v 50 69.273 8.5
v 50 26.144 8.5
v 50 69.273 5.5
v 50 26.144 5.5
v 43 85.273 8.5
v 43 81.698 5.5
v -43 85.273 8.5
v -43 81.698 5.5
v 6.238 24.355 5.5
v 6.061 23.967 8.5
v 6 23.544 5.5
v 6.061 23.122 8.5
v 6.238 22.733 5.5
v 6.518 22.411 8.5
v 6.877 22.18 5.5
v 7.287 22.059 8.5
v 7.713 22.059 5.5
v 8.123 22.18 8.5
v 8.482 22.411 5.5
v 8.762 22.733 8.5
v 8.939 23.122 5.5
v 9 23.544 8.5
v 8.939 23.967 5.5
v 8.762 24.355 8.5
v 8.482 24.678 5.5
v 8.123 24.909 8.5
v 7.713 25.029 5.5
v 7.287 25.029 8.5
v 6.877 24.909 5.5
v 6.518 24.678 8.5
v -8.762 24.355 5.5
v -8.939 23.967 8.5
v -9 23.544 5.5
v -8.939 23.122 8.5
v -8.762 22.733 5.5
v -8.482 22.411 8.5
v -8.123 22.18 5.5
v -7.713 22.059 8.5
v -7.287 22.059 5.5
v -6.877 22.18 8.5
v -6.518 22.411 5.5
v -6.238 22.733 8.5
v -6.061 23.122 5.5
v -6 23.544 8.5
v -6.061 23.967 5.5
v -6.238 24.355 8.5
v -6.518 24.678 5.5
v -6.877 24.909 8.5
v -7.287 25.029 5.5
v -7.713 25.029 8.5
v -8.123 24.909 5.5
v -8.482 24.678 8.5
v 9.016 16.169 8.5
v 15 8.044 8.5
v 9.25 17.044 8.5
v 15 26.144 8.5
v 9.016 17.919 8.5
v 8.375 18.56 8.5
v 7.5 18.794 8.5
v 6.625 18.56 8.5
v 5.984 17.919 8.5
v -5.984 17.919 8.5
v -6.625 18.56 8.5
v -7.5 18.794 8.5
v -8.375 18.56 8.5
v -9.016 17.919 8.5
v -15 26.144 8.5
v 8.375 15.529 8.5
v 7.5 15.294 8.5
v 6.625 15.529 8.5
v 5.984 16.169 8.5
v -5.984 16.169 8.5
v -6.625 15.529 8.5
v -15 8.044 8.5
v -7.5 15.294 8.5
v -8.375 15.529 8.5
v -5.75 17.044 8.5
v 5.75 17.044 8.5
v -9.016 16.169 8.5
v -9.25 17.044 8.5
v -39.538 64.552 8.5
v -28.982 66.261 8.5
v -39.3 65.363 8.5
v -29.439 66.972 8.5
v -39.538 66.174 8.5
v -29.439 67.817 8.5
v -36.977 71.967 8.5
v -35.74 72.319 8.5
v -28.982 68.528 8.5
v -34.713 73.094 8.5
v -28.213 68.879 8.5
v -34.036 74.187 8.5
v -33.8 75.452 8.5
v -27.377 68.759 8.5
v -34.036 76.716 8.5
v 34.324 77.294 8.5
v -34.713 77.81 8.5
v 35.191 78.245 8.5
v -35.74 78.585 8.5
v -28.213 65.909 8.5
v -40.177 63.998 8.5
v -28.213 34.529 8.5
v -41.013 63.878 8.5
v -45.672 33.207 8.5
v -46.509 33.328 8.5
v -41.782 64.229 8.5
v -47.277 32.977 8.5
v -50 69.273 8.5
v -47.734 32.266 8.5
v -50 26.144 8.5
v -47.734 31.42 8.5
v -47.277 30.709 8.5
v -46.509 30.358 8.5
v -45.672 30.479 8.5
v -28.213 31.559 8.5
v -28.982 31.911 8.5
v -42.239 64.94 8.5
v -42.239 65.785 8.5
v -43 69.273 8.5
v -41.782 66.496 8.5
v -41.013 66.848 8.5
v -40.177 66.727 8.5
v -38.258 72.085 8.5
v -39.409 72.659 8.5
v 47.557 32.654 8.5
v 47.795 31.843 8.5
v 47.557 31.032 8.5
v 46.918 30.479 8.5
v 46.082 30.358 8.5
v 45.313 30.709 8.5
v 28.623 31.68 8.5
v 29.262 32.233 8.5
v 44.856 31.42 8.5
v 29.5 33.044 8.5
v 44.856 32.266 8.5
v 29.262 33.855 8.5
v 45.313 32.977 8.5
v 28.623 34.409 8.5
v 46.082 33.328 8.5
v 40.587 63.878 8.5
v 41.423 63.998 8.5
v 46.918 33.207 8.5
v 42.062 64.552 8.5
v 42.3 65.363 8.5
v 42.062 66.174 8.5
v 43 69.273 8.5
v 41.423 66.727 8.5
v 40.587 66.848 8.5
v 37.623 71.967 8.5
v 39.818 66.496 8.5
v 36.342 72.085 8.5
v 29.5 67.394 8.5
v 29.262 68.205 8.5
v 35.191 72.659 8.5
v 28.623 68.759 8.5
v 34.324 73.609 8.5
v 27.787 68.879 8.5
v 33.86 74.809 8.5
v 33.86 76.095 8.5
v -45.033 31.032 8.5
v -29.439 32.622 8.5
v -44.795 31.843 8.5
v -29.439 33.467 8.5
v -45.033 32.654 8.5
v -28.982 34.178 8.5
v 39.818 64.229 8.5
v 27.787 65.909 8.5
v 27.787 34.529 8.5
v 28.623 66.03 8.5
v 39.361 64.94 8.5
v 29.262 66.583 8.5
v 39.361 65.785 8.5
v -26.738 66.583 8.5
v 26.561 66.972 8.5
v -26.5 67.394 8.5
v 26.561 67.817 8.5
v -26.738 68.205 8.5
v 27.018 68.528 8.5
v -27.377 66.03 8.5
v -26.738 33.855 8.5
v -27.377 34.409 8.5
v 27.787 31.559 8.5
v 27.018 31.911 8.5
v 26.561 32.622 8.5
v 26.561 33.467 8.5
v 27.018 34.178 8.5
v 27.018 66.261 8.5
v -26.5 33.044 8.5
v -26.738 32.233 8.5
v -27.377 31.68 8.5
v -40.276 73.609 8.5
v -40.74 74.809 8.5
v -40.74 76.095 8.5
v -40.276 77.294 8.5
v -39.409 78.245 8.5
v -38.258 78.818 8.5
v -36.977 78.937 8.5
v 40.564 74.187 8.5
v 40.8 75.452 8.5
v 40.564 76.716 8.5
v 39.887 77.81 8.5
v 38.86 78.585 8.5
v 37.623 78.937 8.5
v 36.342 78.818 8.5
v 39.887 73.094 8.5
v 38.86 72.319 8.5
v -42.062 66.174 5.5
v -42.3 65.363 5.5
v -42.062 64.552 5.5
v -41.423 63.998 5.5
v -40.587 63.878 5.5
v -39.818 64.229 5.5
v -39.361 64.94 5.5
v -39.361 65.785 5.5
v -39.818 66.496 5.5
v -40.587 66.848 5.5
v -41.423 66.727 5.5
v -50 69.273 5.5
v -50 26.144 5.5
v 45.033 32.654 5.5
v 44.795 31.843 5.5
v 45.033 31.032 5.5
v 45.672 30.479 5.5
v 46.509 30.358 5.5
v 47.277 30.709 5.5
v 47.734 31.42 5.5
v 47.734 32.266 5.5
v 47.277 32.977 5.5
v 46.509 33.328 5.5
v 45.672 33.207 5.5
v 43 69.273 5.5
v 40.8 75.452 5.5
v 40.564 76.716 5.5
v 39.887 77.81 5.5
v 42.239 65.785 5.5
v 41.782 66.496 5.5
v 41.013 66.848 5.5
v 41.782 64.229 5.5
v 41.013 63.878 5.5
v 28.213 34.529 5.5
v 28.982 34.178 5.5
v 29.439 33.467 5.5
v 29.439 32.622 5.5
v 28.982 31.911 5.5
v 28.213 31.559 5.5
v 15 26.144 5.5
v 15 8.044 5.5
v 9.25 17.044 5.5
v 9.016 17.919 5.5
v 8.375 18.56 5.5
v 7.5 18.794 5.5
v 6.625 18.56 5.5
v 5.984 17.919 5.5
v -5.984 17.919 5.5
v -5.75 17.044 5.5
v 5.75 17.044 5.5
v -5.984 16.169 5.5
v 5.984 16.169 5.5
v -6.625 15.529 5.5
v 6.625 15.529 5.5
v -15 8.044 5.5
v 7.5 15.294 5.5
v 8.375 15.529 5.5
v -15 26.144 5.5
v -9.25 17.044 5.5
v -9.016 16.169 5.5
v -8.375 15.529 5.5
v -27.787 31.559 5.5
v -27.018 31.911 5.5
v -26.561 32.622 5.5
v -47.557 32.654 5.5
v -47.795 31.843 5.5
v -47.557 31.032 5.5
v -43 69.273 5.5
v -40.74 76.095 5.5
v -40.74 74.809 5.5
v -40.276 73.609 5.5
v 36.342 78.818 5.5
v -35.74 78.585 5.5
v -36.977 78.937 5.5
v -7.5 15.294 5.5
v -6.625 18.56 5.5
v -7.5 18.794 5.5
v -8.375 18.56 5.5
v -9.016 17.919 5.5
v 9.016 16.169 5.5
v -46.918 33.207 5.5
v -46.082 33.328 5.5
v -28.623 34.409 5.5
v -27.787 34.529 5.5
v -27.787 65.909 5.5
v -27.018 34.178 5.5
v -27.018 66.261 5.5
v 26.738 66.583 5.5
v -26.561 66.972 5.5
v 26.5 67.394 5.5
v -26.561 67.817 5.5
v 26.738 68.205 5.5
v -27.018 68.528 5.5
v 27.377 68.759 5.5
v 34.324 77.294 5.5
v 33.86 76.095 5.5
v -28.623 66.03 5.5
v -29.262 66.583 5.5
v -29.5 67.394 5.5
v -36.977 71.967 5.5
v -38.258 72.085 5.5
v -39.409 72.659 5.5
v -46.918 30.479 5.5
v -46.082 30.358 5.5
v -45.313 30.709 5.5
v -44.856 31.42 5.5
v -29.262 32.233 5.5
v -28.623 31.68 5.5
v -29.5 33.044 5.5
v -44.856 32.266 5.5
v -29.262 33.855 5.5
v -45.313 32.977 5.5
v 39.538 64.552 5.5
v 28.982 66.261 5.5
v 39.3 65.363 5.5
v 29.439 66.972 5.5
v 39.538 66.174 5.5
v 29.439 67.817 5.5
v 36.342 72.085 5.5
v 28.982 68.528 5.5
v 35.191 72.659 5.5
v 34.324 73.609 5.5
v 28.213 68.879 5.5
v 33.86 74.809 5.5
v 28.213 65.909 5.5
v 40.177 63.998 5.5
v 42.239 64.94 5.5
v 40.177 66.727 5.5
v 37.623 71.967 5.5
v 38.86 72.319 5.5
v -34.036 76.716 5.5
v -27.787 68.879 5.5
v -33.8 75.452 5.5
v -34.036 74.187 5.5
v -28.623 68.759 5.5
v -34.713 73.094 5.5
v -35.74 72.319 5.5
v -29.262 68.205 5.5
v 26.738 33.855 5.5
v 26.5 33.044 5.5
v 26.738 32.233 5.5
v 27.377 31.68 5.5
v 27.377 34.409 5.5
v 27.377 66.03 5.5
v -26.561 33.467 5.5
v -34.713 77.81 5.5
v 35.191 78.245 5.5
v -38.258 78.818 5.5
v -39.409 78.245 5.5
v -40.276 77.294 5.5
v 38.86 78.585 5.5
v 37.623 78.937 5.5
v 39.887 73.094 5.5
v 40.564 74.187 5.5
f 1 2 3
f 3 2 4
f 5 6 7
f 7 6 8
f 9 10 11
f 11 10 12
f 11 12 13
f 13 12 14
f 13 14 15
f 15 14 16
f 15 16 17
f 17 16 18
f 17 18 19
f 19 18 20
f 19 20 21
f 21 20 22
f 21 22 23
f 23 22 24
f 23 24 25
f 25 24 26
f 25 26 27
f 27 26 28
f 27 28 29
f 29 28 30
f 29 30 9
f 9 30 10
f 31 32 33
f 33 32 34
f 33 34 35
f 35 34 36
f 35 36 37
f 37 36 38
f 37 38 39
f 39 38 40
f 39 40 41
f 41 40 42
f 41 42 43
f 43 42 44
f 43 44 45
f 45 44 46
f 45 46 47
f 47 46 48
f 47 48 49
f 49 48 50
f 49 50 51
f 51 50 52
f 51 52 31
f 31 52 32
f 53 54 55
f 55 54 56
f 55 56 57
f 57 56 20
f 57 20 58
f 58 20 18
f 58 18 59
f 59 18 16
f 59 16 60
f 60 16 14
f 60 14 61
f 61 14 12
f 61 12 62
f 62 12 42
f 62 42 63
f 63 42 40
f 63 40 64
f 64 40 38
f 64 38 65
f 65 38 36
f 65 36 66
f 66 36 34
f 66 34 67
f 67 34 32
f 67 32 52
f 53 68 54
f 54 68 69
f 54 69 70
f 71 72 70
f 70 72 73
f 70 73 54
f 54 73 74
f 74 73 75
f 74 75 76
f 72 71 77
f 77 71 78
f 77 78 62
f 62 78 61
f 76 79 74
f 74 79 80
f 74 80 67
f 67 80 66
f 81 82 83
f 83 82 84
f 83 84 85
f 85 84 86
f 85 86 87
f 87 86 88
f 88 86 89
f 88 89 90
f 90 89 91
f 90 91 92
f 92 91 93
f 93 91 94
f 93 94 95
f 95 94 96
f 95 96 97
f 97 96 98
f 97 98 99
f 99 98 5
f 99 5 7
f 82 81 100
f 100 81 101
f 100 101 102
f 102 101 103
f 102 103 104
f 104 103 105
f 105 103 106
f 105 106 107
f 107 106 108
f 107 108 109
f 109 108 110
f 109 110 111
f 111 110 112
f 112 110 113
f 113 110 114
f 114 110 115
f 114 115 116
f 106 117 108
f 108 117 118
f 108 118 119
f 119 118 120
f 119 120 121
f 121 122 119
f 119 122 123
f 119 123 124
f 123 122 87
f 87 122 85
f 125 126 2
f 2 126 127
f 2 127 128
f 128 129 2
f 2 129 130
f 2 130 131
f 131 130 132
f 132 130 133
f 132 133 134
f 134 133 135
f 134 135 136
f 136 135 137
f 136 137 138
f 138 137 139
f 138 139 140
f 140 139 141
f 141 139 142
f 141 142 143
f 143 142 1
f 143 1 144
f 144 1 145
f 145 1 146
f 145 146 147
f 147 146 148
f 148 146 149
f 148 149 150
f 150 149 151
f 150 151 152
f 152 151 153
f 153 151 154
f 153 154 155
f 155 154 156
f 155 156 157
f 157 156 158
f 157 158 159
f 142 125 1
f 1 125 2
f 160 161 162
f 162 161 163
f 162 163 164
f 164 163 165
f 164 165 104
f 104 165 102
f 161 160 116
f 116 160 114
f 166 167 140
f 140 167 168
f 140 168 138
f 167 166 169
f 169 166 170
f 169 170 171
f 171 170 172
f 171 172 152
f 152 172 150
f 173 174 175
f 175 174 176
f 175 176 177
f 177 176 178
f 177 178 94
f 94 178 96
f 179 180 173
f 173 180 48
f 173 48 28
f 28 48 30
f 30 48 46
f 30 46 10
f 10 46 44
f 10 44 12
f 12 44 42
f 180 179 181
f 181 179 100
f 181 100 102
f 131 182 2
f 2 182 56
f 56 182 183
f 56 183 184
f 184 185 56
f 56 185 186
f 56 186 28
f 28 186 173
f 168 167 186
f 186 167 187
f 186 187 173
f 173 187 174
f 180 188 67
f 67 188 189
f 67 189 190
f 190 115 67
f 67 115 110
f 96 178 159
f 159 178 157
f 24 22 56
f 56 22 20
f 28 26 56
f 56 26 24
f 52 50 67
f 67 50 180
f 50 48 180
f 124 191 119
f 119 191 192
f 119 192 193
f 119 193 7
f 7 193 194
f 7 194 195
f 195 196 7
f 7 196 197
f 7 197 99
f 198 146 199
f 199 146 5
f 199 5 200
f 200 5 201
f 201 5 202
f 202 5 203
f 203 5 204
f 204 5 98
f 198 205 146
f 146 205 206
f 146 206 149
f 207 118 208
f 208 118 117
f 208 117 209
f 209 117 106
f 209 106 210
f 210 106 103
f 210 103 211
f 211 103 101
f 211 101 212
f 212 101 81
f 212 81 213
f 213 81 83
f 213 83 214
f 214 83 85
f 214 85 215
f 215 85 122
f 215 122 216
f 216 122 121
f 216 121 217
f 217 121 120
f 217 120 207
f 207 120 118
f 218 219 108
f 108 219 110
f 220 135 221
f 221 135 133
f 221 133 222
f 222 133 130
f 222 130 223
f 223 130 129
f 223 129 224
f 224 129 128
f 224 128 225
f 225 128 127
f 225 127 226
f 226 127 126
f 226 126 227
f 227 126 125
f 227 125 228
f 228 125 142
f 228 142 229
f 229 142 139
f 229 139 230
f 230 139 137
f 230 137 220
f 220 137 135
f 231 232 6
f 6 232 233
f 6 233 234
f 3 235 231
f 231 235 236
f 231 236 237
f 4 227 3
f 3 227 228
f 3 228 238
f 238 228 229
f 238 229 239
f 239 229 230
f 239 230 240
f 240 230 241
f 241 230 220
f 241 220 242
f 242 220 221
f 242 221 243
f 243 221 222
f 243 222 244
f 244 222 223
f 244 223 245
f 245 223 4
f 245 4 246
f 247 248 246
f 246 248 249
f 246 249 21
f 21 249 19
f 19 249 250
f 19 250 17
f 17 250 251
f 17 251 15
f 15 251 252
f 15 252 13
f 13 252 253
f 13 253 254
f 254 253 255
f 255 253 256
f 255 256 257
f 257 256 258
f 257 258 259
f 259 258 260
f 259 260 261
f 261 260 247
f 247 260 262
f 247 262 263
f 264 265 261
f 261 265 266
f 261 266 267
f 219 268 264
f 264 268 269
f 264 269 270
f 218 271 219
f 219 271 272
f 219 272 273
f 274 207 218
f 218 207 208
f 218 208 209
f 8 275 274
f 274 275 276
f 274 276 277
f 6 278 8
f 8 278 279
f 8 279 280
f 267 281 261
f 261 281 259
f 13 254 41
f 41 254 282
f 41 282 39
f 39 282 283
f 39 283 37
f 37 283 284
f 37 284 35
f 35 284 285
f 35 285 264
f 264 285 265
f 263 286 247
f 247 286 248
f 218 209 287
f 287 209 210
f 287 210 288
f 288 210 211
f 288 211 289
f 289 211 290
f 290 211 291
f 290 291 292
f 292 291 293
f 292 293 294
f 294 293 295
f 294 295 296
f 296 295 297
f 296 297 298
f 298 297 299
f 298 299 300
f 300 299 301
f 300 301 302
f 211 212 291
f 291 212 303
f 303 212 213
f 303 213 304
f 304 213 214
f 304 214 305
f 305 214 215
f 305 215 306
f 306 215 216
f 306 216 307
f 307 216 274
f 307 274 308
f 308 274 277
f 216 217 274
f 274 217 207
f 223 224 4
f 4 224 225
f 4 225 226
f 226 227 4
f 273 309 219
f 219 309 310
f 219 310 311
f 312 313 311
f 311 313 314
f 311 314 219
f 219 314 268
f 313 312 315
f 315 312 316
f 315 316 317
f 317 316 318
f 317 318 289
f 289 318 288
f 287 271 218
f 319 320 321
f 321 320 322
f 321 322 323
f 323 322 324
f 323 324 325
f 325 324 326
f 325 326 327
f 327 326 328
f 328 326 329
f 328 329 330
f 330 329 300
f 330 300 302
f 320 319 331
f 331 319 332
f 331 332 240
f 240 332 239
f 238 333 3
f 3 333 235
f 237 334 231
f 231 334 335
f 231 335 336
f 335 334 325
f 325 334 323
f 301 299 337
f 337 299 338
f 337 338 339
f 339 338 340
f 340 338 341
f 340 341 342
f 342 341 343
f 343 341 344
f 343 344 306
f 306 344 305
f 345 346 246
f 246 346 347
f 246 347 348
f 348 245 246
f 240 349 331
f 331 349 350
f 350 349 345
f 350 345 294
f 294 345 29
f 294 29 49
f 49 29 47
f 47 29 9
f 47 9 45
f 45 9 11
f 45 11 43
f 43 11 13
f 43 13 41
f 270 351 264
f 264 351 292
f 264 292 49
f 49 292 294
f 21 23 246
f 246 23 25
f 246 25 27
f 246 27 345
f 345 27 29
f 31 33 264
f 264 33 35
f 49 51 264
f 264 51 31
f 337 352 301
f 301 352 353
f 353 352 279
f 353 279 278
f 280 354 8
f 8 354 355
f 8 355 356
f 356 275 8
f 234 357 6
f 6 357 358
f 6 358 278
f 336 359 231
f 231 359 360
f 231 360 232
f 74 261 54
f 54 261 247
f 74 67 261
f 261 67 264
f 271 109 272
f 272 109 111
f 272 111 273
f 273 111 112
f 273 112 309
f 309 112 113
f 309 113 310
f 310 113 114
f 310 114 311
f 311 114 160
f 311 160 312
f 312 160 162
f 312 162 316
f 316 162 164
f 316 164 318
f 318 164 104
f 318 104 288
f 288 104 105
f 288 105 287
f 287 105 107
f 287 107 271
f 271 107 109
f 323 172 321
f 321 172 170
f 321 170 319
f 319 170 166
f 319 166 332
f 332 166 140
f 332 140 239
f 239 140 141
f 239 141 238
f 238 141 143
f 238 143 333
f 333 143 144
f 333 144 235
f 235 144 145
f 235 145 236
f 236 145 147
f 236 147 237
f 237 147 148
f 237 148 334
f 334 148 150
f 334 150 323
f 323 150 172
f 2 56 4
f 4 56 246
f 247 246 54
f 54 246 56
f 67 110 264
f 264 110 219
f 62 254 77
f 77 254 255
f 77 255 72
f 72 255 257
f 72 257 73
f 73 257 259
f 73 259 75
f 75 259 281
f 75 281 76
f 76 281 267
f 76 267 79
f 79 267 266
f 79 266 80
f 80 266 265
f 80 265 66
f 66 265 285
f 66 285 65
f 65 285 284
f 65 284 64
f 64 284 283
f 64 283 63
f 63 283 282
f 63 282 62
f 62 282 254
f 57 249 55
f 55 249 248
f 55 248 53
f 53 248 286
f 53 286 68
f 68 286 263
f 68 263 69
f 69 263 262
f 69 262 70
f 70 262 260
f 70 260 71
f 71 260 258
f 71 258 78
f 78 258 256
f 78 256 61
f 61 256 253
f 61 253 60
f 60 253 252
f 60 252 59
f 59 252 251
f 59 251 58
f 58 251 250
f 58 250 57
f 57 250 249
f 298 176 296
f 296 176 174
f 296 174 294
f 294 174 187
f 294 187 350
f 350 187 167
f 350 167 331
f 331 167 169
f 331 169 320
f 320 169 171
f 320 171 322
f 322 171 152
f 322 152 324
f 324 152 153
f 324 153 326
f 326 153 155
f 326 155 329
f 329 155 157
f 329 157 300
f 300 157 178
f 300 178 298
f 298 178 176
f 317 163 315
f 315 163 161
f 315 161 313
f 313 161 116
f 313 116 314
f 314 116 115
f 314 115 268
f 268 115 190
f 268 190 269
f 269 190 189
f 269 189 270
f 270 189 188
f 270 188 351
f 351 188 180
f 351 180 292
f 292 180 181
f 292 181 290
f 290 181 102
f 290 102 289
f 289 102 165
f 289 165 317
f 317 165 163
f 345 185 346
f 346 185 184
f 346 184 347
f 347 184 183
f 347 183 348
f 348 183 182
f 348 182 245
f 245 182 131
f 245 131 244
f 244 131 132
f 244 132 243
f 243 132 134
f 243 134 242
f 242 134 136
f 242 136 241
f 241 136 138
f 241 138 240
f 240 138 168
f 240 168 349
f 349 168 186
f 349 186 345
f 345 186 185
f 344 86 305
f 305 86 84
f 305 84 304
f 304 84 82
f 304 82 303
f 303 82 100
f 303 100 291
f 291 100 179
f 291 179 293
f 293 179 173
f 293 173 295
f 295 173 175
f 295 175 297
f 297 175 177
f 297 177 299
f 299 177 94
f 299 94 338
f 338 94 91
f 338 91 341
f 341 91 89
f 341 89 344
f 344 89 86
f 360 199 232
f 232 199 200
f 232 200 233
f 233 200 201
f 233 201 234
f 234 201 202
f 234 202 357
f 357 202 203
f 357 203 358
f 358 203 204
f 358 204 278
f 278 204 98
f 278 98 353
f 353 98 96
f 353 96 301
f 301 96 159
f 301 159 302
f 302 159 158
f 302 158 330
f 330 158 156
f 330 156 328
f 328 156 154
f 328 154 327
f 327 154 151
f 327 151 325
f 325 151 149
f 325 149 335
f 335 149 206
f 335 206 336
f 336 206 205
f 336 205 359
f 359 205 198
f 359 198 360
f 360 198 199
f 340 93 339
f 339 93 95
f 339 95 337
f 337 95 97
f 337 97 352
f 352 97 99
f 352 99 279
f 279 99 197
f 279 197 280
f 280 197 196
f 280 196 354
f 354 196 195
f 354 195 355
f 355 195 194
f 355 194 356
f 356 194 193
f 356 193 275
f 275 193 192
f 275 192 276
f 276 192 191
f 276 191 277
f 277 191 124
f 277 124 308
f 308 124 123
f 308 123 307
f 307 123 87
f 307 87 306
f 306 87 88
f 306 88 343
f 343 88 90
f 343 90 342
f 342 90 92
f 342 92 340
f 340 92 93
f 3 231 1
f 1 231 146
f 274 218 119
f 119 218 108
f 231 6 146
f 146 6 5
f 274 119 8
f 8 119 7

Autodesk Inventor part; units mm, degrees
ref_plane "YZ Plane" through (0, 0, 0) normal (1, 0, 0) x (0, 1, 0)
ref_plane "XZ Plane" through (0, 0, 0) normal (0, 1, 0) x (-1, 0, 0)
sketch "Sketch1" plane through (0, 0, 0) normal (0, 0, 1) x (1, 0, 0)
  line L0 (15, -2.1558) -> (15, 4.1558) projected
  line L1 (15, 4.1558) -> (-15, 4.1558) projected
  line L2 (-15, 4.1558) -> (-15, -2.1558) projected
  arc A0 (-15, -2.1558) -> (-13, -4.1558) centre (-13, -2.1558) ccw projected
  line L3 (-13, -4.1558) -> (13, -4.1558) projected
  arc A1 (13, -4.1558) -> (15, -2.1558) centre (13, -2.1558) ccw projected
  circle A2 centre (7.5, -0.9558) radius 1.75 projected
  circle A3 centre (-7.5, -0.9558) radius 1.75 projected
  circle A4 centre (7.5, 17.0442) radius 1.75 projected
  line L4 (4.1641, 20.2442) -> (4.1641, 11.9327) projected
  line L5 (4.1641, 11.9327) -> (15, 11.9327) projected
  line L6 (15, 11.9327) -> (15, 18.2442) projected
  arc A5 (15, 18.2442) -> (13, 20.2442) centre (13, 18.2442) ccw projected
  line L7 (13, 20.2442) -> (4.1641, 20.2442) projected
  line L8 (-4.1641, 11.9327) -> (-4.1641, 20.2442) projected
  line L9 (-4.1641, 20.2442) -> (-13, 20.2442) projected
  arc A6 (-13, 20.2442) -> (-15, 18.2442) centre (-13, 18.2442) ccw projected
  line L10 (-15, 18.2442) -> (-15, 11.9327) projected
  line L11 (-15, 11.9327) -> (-4.1641, 11.9327) projected
  circle A7 centre (-7.5, 17.0442) radius 1.75 projected
  line L12 (48, -8.0558) -> (17.2, -8.0558)
  line L13 (-48, -8.0558) -> (-17.2, -8.0558)
  line L14 (48, -8.0558) -> (50, -8.0558)
  line L15 (50, -8.0558) -> (50, 42.8217)
  line L16 (-48, -8.0558) -> (-50, -8.0558)
  line L17 (-50, -8.0558) -> (-50, 42.8217)
  line L18 (50, -8.0558) -> (-50, -8.0558)
  line L19 (-50, -8.0558) -> (-50, 91.9442)
  line L20 (-50, 91.9442) -> (50, 91.9442)
  line L21 (50, 91.9442) -> (50, -8.0558)
  line L22 (48, 24.1442) -> (17.2, 24.1442)
  line L23 (-48, 24.1442) -> (-17.2, 24.1442)
  line L24 (48, 24.1442) -> (17.2, 24.1442)
  line L25 (17.2, 24.1442) -> (17.2, 26.1442)
  line L26 (17.2, 26.1442) -> (48, 26.1442)
  line L27 (48, 26.1442) -> (48, 24.1442)
  line L28 (-48, 24.1442) -> (-17.2, 24.1442)
  line L29 (-17.2, 24.1442) -> (-17.2, 26.1442)
  line L30 (-17.2, 26.1442) -> (-48, 26.1442)
  line L31 (-48, 26.1442) -> (-48, 24.1442)
  line L32 (-15, -4.1558) -> (15, -4.1558)
  line L33 (15, -4.1558) -> (15, 49.5694)
  line L34 (15, 49.5694) -> (-15, 49.5694)
  line L35 (-15, 49.5694) -> (-15, -4.1558)
  line L36 (-50, 91.9442) -> (50, 91.9442)
  line L37 (50, 91.9442) -> (50, 26.1442)
  line L38 (50, 26.1442) -> (-50, 26.1442)
  line L39 (-50, 26.1442) -> (-50, 91.9442)
  point P0 (0, 0)
  point P1 (15, 26.1442)
  point P2 (-15, 26.1442)
  dimension "d2" = 100
  dimension "d3" = 2
  dimension "d4" = 2
extrude "Extrusion1" add sketch "Sketch1" along normal blind 2 contours A1 L3 A0 L2 L1 L0 | L33 L32 A1 | L1 L35 L11 L8 L9 A6 L38 L33 A5 L7 L4 L5 | L5 L4 L7 A5 L6 | L32 L35 A0 | L10 A6 L9 L8 L11 | L38 L35 L34 L33 | L33 L34 L35 L38 L30 L17 L19 L20 L21 L15 L26
sketch "Sketch2" plane through (0, 0, 2) normal (0, 0, 1) x (1, 0, 0)
  line L0 (15, -4.1558) -> (15, 26.1442) projected
  line L1 (15, 26.1442) -> (50, 26.1442) projected
  line L2 (50, 26.1442) -> (50, 91.9442) projected
  line L3 (50, 91.9442) -> (-50, 91.9442) projected
  line L4 (-50, 91.9442) -> (-50, 26.1442) projected
  line L5 (-50, 26.1442) -> (-15, 26.1442) projected
  line L6 (-15, 26.1442) -> (-15, -4.1558) projected
  line L7 (-15, -4.1558) -> (15, -4.1558) projected
  circle A0 centre (7.5, -0.9558) radius 1.75 projected
  circle A1 centre (-7.5, -0.9558) radius 1.75 projected
  circle A2 centre (7.5, 17.0442) radius 1.75 projected
  circle A3 centre (-7.5, 17.0442) radius 1.75 projected
  point P0 (0, 0)
extrude "Extrusion2" add sketch "Sketch2" along normal blind 7
extrude "Extrusion3" cut sketch "Sketch2" against normal blind 7
extrude "Extrusion4" cut sketch "Sketch2" along normal blind 4
sketch "Sketch3" plane through (0, 0, 6) normal (0, 0, -1) x (-1, 0, 0)
  line L0 (-15, 26.1442) -> (-50, 26.1442) projected
  line L1 (-15, -4.1558) -> (-15, 26.1442) projected
  line L2 (15, -4.1558) -> (-15, -4.1558) projected
  line L3 (15, 26.1442) -> (15, -4.1558) projected
  line L4 (50, 26.1442) -> (15, 26.1442) projected
  line L5 (50, 91.9442) -> (50, 26.1442) projected
  line L6 (-50, 91.9442) -> (50, 91.9442) projected
  line L7 (-50, 26.1442) -> (-50, 91.9442) projected
  circle A0 centre (-7.5, -0.9558) radius 1.75 projected
  circle A1 centre (7.5, -0.9558) radius 1.75 projected
  circle A2 centre (-7.5, 17.0442) radius 1.75 projected
  circle A3 centre (7.5, 17.0442) radius 1.75 projected
  point P0 (0, 0)
extrude "Extrusion5" add sketch "Sketch3" along normal blind 0.5
sketch "Sketch4" plane through (0, 0, 9) normal (0, 0, 1) x (1, 0, 0)
  line L0 (15, 26.1442) -> (50, 26.1442) projected
  line L1 (50, 26.1442) -> (50, 91.9442) projected
  line L2 (50, 91.9442) -> (-50, 91.9442) projected
  line L3 (-50, 91.9442) -> (-50, 26.1442) projected
  line L4 (-50, 26.1442) -> (-15, 26.1442) projected
  line L5 (-15, 26.1442) -> (-15, -4.1558) projected
  line L6 (-15, -4.1558) -> (15, -4.1558) projected
  line L7 (15, -4.1558) -> (15, 26.1442) projected
  circle A0 centre (7.5, -0.9558) radius 1.75 projected
  circle A1 centre (-7.5, -0.9558) radius 1.75 projected
  circle A2 centre (7.5, 17.0442) radius 1.75 projected
  circle A3 centre (-7.5, 17.0442) radius 1.75 projected
  point P0 (0, 0)
extrude "Extrusion6" cut sketch "Sketch4" against normal blind 0.5
sketch "Sketch5" plane through (0, 0, 5.5) normal (0, 0, -1) x (-1, 0, 0)
  line L0 (-15, -4.1558) -> (15, -4.1558) projected
  line L1 (15, -4.1558) -> (15, 26.1442) projected
  line L2 (15, 26.1442) -> (50, 26.1442) projected
  line L3 (50, 26.1442) -> (50, 91.9442) projected
  line L4 (50, 91.9442) -> (-50, 91.9442) projected
  line L5 (-50, 91.9442) -> (-50, 26.1442) projected
  line L6 (-50, 26.1442) -> (-15, 26.1442) projected
  line L7 (-15, 26.1442) -> (-15, -4.1558) projected
  circle A0 centre (7.5, 17.0442) radius 1.75 projected
  circle A1 centre (-7.5, 17.0442) radius 1.75 projected
  circle A2 centre (7.5, -0.9558) radius 1.75 projected
  circle A3 centre (-7.5, -0.9558) radius 1.75 projected
  circle A4 centre (7.5, -0.9558) radius 1.75 projected
  circle A5 centre (7.5, 17.0442) radius 1.75 projected
  line L8 (7.5, -0.9558) -> (7.5, 17.0442)
  line L9 (7.5, 17.0442) -> (7.5, 35.0442)
  line L10 (7.5, 17.0442) -> (-7.5, 17.0442)
  line L11 (-7.5, 17.0442) -> (-7.5, 35.0442)
  line L12 (-7.5, 35.0442) -> (7.5, 35.0442)
  line L13 (7.5, 35.0442) -> (7.5, 17.0442)
  circle A6 centre (7.5, 35.0442) radius 1.5
  circle A7 centre (-7.5, 35.0442) radius 1.5
  point P0 (0, 0)
  dimension "d20" = 18
  dimension "d21" = 3
  dimension "d22" = 3
extrude "Extrusion7" cut sketch "Sketch5" against normal through all contours A6 L12 L9 | L9 L12 A6 | A7 L11 L12 | L12 L11 A7
sketch "Sketch6" plane through (15, -4.1558, 5.5) normal (1, 0, 0) x (0, 0, -1)
  line L0 (-3, 30.3) -> (-3, 0) projected
  line L1 (0, 0) -> (-3, 0) projected
  line L2 (0, 30.3) -> (0, 0) projected
  line L3 (0, 30.3) -> (-3, 30.3) projected
  circle A0 centre (11.4185, 12.2) radius 16.1 projected
  line L4 (11.4185, 12.2) -> (-2.2801, 12.2)
  line L5 (-2.2801, 12.2) -> (-8.0401, 12.2)
  circle A1 centre (11.4185, 12.2) radius 14
  point P0 (5.5, 4.1558)
  point P1 (0, 12.2)
  point P2 (-3, 12.2)
extrude "Extrusion8" cut sketch "Sketch6" against normal through all contours L5 A1 L2 A0 L0 | A0 L2 L1 L0 | L5 L4 L2 A1 picked at (-1.4712, 5.246) picked at (-0.4712, 7.6339)
sketch "Sketch7" plane through (-50, 26.1442, 5.5) normal (-1, 0, 0) x (0, 0, 1)
  line L0 (3, 0) -> (3, 65.8) projected
  line L1 (0, 65.8) -> (3, 65.8) projected
  line L2 (0, 0) -> (0, 65.8) projected
  line L3 (0, 0) -> (3, 0) projected
  circle A0 centre (-10.971, -17.5667) radius 16.1 projected
  line L4 (-10.971, -33.6667) -> (-10.971, 66.3333)
  line L5 (5.129, -17.5667) -> (5.129, 92.1533)
  line L6 (-10.971, 66.3333) -> (5.129, 66.3333)
  line L7 (5.129, 66.3333) -> (-7.5989, 53.6054)
  line L8 (-7.5989, 53.6054) -> (-5.4776, 51.4841)
  line L9 (-5.4776, 51.4841) -> (5.129, 62.0907)
  point P0 (-5.5, -26.1442)
  point P1 (0, 56.9617)
  point P2 (3, 59.9617)
  dimension "d27" = 18
  dimension "d28" = 45
  dimension "d29" = 3
extrude "Extrusion9" cut sketch "Sketch7" against normal through all contours L9 L2 L7 L0 | L7 L2 L1 L0
sketch "Sketch9" plane through (-50, 26.1442, 5.5) normal (-1, 0, 0) x (0, 0, 1)
  line L0 (3, 59.9617) -> (0, 56.9617) projected
  line L1 (0, 0) -> (0, 56.9617) projected
  line L2 (0, 0) -> (3, 0) projected
  line L3 (3, 0) -> (3, 59.9617) projected
  circle A0 centre (-10.971, -17.5667) radius 16.1 projected
  line L4 (5.129, -17.5667) -> (5.129, 67.8792)
  line L5 (-10.971, -33.6667) -> (-10.971, 66.3333)
  line L6 (-10.971, 66.3333) -> (9.3716, 66.3333)
  line L7 (5.129, 66.3333) -> (-14.1546, 43.352)
  line L8 (-14.1546, 43.352) -> (-11.8565, 41.4236)
  line L9 (-11.8565, 41.4236) -> (5.129, 61.6661)
  point P0 (-5.5, -26.1442)
  point P1 (0, 55.5537)
  point P2 (3, 59.1289)
  dimension "d37" = 100
  dimension "d38" = 30
  dimension "d39" = 40
  dimension "d40" = 3
extrude "Extrusion10" cut sketch "Sketch9" against normal through all contours L3 L9 L1 L0
sketch "Sketch10" plane through (0, 0, 8.5) normal (0, 0, 1) x (1, 0, 0)
  line L0 (2.5, -4.1558) -> (-2.5, -4.1558) projected
  line L1 (-2.5, -4.1558) -> (-2.5, 40.0442) projected
  line L2 (-2.5, 40.0442) -> (-18, 40.0442) projected
  line L3 (-18, 40.0442) -> (-18, 28.8774) projected
  line L4 (-18, 28.8774) -> (-41, 28.8774) projected
  line L5 (-41, 28.8774) -> (-41, 59.7543) projected
  line L6 (-41, 59.7543) -> (-35.2556, 59.7543) projected
  line L7 (-35.2556, 59.7543) -> (-35.2556, 69.9737) projected
  line L8 (-35.2556, 69.9737) -> (-41, 69.9737) projected
  line L9 (-41, 69.9737) -> (-41, 78.0016) projected
  line L10 (-41, 78.0016) -> (-28, 78.0016) projected
  line L11 (-28, 78.0016) -> (-28, 69.9737) projected
  line L12 (-28, 69.9737) -> (28, 69.9737) projected
  line L13 (28, 69.9737) -> (28, 78.0016) projected
  line L14 (28, 78.0016) -> (41, 78.0016) projected
  line L15 (41, 78.0016) -> (41, 69.9737) projected
  line L16 (41, 69.9737) -> (35.2556, 69.9737) projected
  line L17 (35.2556, 69.9737) -> (35.2556, 59.7543) projected
  line L18 (35.2556, 59.7543) -> (41, 59.7543) projected
  line L19 (41, 59.7543) -> (41, 28.8774) projected
  line L20 (41, 28.8774) -> (18, 28.8774) projected
  line L21 (18, 28.8774) -> (18, 40.0442) projected
  line L22 (18, 40.0442) -> (2.5, 40.0442) projected
  line L23 (2.5, 40.0442) -> (2.5, -4.1558) projected
  line L24 (14.3503, 58.5833) -> (3.9031, 60.8951) projected
  line L25 (3.9031, 60.8951) -> (3.5574, 59.3328) projected
  line L26 (3.5574, 59.3328) -> (14.0047, 57.0211) projected
  line L27 (14.0047, 57.0211) -> (14.3503, 58.5833) projected
  line L28 (1.2105, 60.9065) -> (-9.235, 58.5864) projected
  line L29 (-9.235, 58.5864) -> (-8.888, 57.0245) projected
  line L30 (-8.888, 57.0245) -> (1.5574, 59.3445) projected
  line L31 (1.5574, 59.3445) -> (1.2105, 60.9065) projected
  line L32 (-31.4357, 55.8588) -> (-32.5559, 57.0012) projected
  line L33 (-32.5559, 57.0012) -> (-40.1958, 49.5097) projected
  line L34 (-40.1958, 49.5097) -> (-39.0755, 48.3673) projected
  line L35 (-39.0755, 48.3673) -> (-31.4357, 55.8588) projected
  line L36 (38.6369, 43.8085) -> (39.7739, 44.9342) projected
  line L37 (39.7739, 44.9342) -> (32.2458, 52.538) projected
  line L38 (32.2458, 52.538) -> (31.1088, 51.4123) projected
  line L39 (31.1088, 51.4123) -> (38.6369, 43.8085) projected
  line L40 (-34.6166, 43.8763) -> (-36.1788, 44.2217) projected
  line L41 (-36.1788, 44.2217) -> (-38.4885, 33.774) projected
  line L42 (-38.4885, 33.774) -> (-36.9263, 33.4286) projected
  line L43 (-36.9263, 33.4286) -> (-34.6166, 43.8763) projected
  line L44 (39.2388, 29.2757) -> (40.8006, 29.6229) projected
  line L45 (40.8006, 29.6229) -> (38.4785, 40.0679) projected
  line L46 (38.4785, 40.0679) -> (36.9167, 39.7207) projected
  line L47 (36.9167, 39.7207) -> (39.2388, 29.2757) projected
  circle A0 centre (7.5, 35.0442) radius 1.5 projected
  circle A1 centre (-7.5, 35.0442) radius 1.5 projected
  circle A2 centre (7.5, 35.0442) radius 1.5 projected
  line L48 (7.5, 35.0442) -> (28.8902, 35.0442)
  line L49 (0, -4.1558) -> (0, 44.2217)
  line L50 (18, 35.0442) -> (21.5, 35.0442)
  circle A3 centre (21.5, 35.0442) radius 1.5
  circle A4 centre (-21.5, 35.0442) radius 1.5
  point P0 (0, 0)
  dimension "d43" = 3.5
  dimension "d44" = 3
extrude "Extrusion11" cut sketch "Sketch10" against normal through all contours A3 L48 | L48 A3 | A4
sketch "Sketch11" plane through (0, 0, 8.5) normal (0, 0, 1) x (1, 0, 0)
  line L0 (-39.4778, 77.0915) -> (-36.7778, 77.0915) projected
  line L1 (-36.7778, 77.0915) -> (-36.7778, 73.6915) projected
  line L2 (-36.7778, 73.6915) -> (-39.4778, 73.6915) projected
  line L3 (-39.4778, 73.6915) -> (-39.4778, 77.0915) projected
  line L4 (36.7778, 73.6915) -> (36.7778, 77.0915) projected
  line L5 (39.4778, 73.6915) -> (36.7778, 73.6915) projected
  line L6 (39.4778, 77.0915) -> (39.4778, 73.6915) projected
  line L7 (36.7778, 77.0915) -> (39.4778, 77.0915) projected
  circle A0 centre (-21.5, 35.0442) radius 1.5 projected
  circle A1 centre (21.5, 35.0442) radius 1.5 projected
  circle A2 centre (-7.5, 17.0442) radius 1.75 projected
  circle A3 centre (7.5, 17.0442) radius 1.75 projected
  circle A4 centre (-7.5, 35.0442) radius 1.5 projected
  circle A5 centre (7.5, 35.0442) radius 1.5 projected
  line L8 (50, 85.2732) -> (-50, 85.2732) projected
  line L9 (-50, 26.1442) -> (-50, 85.2732) projected
  line L10 (-15, 26.1442) -> (-50, 26.1442) projected
  line L11 (-15, 8.0442) -> (-15, 26.1442) projected
  line L12 (-15, 8.0442) -> (15, 8.0442) projected
  line L13 (15, 26.1442) -> (15, 8.0442) projected
  line L14 (50, 26.1442) -> (15, 26.1442) projected
  line L15 (50, 85.2732) -> (50, 26.1442) projected
  line L16 (50, 85.2732) -> (-50, 85.2732) projected
  line L17 (0, 85.2732) -> (0, 72.794)
  circle A6 centre (-38.1278, 75.3915) radius 3
  circle A7 centre (38.1278, 75.3915) radius 3
  point P0 (0, 0)
  dimension "d47" = 6
extrude "Extrusion12" cut sketch "Sketch11" against normal blind 10 contours L0 L1 L2 L3 | L4 L7 L6 L5 | A6 | A7
sketch "Sketch12" plane through (0, 0, 8.5) normal (0, 0, 1) x (1, 0, 0)
  circle A0 centre (38.1278, 75.3915) radius 3 projected
  circle A1 centre (-38.1278, 75.3915) radius 3 projected
  circle A2 centre (-21.5, 35.0442) radius 1.5 projected
  circle A3 centre (21.5, 35.0442) radius 1.5 projected
  circle A4 centre (-7.5, 17.0442) radius 1.75 projected
  circle A5 centre (7.5, 17.0442) radius 1.75 projected
  circle A6 centre (-7.5, 35.0442) radius 1.5 projected
  circle A7 centre (7.5, 35.0442) radius 1.5 projected
  line L0 (50, 85.2732) -> (-50, 85.2732) projected
  line L1 (-50, 26.1442) -> (-50, 85.2732) projected
  line L2 (-15, 26.1442) -> (-50, 26.1442) projected
  line L3 (-15, 8.0442) -> (-15, 26.1442) projected
  line L4 (-15, 8.0442) -> (15, 8.0442) projected
  line L5 (15, 26.1442) -> (15, 8.0442) projected
  line L6 (50, 26.1442) -> (15, 26.1442) projected
  line L7 (50, 85.2732) -> (50, 26.1442) projected
  circle A8 centre (-46.295, 31.843) radius 1.5
  circle A9 centre (-40.8, 65.3628) radius 1.5
  circle A10 centre (40.8, 65.3628) radius 1.5
  circle A11 centre (46.295, 31.843) radius 1.5
  circle A12 centre (-28, 67.3942) radius 1.5
  circle A13 centre (-28, 33.0442) radius 1.5
  circle A14 centre (28, 33.0442) radius 1.5
  circle A15 centre (28, 67.3942) radius 1.5
  point P0 (0, 0)
extrude "Extrusion13" cut sketch "Sketch12" against normal blind 10 contours A8 | A9 | A10 | A11 | A12 | A13 | A14 | A15
ref_plane "Work Plane1" through (36.05, 26.643, 5.5) normal (0, 0, 1) x (1, 0, 0)
extrude "Extrusion14" add sketch "Sketch12" against normal up to surface (3 mm away) contours A2 | A3 | A6 | A7
sketch "Sketch13" plane through (0, 0, 8.5) normal (0, 0, 1) x (1, 0, 0)
  circle A0 centre (7.5, 23.5442) radius 1.5
  circle A1 centre (-7.5, 23.5442) radius 1.5
  point P0 (0, 0)
extrude "Extrusion15" cut sketch "Sketch13" against normal blind 10
sketch "Sketch14" plane through (0, 0, 8.5) normal (0, 0, 1) x (1, 0, 0)
  circle A0 centre (-7.5, 23.5442) radius 1.5 projected
  circle A1 centre (7.5, 23.5442) radius 1.5 projected
  circle A2 centre (28, 67.3942) radius 1.5 projected
  circle A3 centre (-28, 33.0442) radius 1.5 projected
  circle A4 centre (28, 33.0442) radius 1.5 projected
  circle A5 centre (-28, 67.3942) radius 1.5 projected
  circle A6 centre (40.8, 65.3628) radius 1.5 projected
  circle A7 centre (-46.295, 31.843) radius 1.5 projected
  circle A8 centre (46.295, 31.843) radius 1.5 projected
  circle A9 centre (-40.8, 65.3628) radius 1.5 projected
  circle A10 centre (38.1278, 75.3915) radius 3 projected
  circle A11 centre (-38.1278, 75.3915) radius 3 projected
  circle A12 centre (-7.5, 17.0442) radius 1.75 projected
  circle A13 centre (7.5, 17.0442) radius 1.75 projected
  line L0 (50, 85.2732) -> (-50, 85.2732) projected
  line L1 (-50, 26.1442) -> (-50, 85.2732) projected
  line L2 (-15, 26.1442) -> (-50, 26.1442) projected
  line L3 (-15, 8.0442) -> (-15, 26.1442) projected
  line L4 (-15, 8.0442) -> (15, 8.0442) projected
  line L5 (15, 26.1442) -> (15, 8.0442) projected
  line L6 (50, 26.1442) -> (15, 26.1442) projected
  line L7 (50, 85.2732) -> (50, 26.1442) projected
  point P0 (0, 0)
extrude "Extrusion16" add sketch "Sketch14" against normal blind 3 contours A10 | A11
sketch "Sketch15" plane through (0, 0, 8.5) normal (0, 0, 1) x (1, 0, 0)
  line L0 (-38.65, 77.1516) -> (-38.65, 73.7516)
  line L1 (-38.65, 73.7516) -> (-35.95, 73.7516)
  line L2 (38.65, 73.7516) -> (38.65, 76.8016)
  line L3 (35.95, 73.7516) -> (38.65, 73.7516)
  line L4 (-38.65, 73.7516) -> (-35.95, 73.7516)
  line L5 (-35.95, 73.7516) -> (-35.95, 77.1516)
  line L6 (-35.95, 77.1516) -> (-38.65, 77.1516)
  line L7 (-38.65, 77.1516) -> (-38.65, 73.7516)
  line L8 (38.65, 73.7516) -> (35.95, 73.7516)
  line L9 (35.95, 73.7516) -> (35.95, 77.1516)
  line L10 (35.95, 77.1516) -> (38.65, 77.1516)
  line L11 (38.65, 77.1516) -> (38.65, 73.7516)
  circle A0 centre (-7.5, 23.5442) radius 1.5 projected
  circle A1 centre (7.5, 23.5442) radius 1.5 projected
  circle A2 centre (28, 67.3942) radius 1.5 projected
  circle A3 centre (-28, 33.0442) radius 1.5 projected
  circle A4 centre (28, 33.0442) radius 1.5 projected
  circle A5 centre (-28, 67.3942) radius 1.5 projected
  circle A6 centre (40.8, 65.3628) radius 1.5 projected
  circle A7 centre (-46.295, 31.843) radius 1.5 projected
  circle A8 centre (46.295, 31.843) radius 1.5 projected
  circle A9 centre (-40.8, 65.3628) radius 1.5 projected
  circle A10 centre (-7.5, 17.0442) radius 1.75 projected
  circle A11 centre (7.5, 17.0442) radius 1.75 projected
  line L12 (50, 85.2732) -> (-50, 85.2732) projected
  line L13 (-50, 26.1442) -> (-50, 85.2732) projected
  line L14 (-15, 26.1442) -> (-50, 26.1442) projected
  line L15 (-15, 8.0442) -> (-15, 26.1442) projected
  line L16 (-15, 8.0442) -> (15, 8.0442) projected
  line L17 (15, 26.1442) -> (15, 8.0442) projected
  line L18 (50, 26.1442) -> (15, 26.1442) projected
  line L19 (50, 85.2732) -> (50, 26.1442) projected
  line L20 (50, 85.2732) -> (-50, 85.2732) projected
  line L21 (0, 85.2732) -> (0, 80.387)
  circle A12 centre (-37.3, 75.4516) radius 3.5
  circle A13 centre (37.3, 75.4516) radius 3.5
  point P0 (0, 0)
  dimension "d58" = 7
extrude "Extrusion17" cut sketch "Sketch15" against normal blind 3 contours L6 L5 L1 L0 | L3 L9 L10 L11 L2 | A12 | A13
ref_plane "Work Plane2" through (-50, 87.7758, 10.6) normal (0, -0.6428, 0.766) x (0, 0.766, 0.6428)
sketch "Sketch16" plane through (-50, 87.7758, 10.6) normal (0, -0.6428, 0.766) x (0, 0.766, 0.6428)
  circle A0 centre (-11.9809, -3) radius 1.5
  circle A1 centre (-12.2541, -96.9087) radius 1.5
  point P0 (-74.0537, -50)
extrude "Extrusion18" cut sketch "Sketch16" along normal through all
sketch "Sketch17" plane through (0, 0, 8.5) normal (0, 0, 1) x (1, 0, 0)
  line L0 (50, 85.2732) -> (50, 26.1442) projected
  line L1 (50, 70.5098) -> (43.7281, 70.5098)
  line L2 (43.7281, 70.5098) -> (43.7281, 77.3722)
  line L3 (43.7281, 77.3722) -> (50, 77.3722)
  line L4 (50, 77.3722) -> (50, 70.5098)
  line L5 (50, 85.2732) -> (-50, 85.2732) projected
  line L6 (0, 85.2732) -> (0, 70.5098)
  line L7 (-50, 70.5098) -> (-43.7281, 70.5098)
  line L8 (-43.7281, 70.5098) -> (-43.7281, 77.3722)
  line L9 (-43.7281, 77.3722) -> (-50, 77.3722)
  line L10 (-50, 26.1442) -> (-50, 85.2732) projected
  line L11 (-50, 85.2732) -> (-43, 85.2732)
  line L12 (-43, 85.2732) -> (-43, 69.2732)
  line L13 (-43, 69.2732) -> (-50, 69.2732)
  line L14 (-50, 69.2732) -> (-50, 85.2732)
  line L15 (43, 85.2732) -> (43, 69.2732)
  line L16 (43, 69.2732) -> (50, 69.2732)
  point P0 (0, 0)
  dimension "d63" = 7
  dimension "d64" = 16
extrude "Extrusion19" cut sketch "Sketch17" against normal blind 10
properties part number "blacha_stal_3mm" material "Steel, Alloy"
